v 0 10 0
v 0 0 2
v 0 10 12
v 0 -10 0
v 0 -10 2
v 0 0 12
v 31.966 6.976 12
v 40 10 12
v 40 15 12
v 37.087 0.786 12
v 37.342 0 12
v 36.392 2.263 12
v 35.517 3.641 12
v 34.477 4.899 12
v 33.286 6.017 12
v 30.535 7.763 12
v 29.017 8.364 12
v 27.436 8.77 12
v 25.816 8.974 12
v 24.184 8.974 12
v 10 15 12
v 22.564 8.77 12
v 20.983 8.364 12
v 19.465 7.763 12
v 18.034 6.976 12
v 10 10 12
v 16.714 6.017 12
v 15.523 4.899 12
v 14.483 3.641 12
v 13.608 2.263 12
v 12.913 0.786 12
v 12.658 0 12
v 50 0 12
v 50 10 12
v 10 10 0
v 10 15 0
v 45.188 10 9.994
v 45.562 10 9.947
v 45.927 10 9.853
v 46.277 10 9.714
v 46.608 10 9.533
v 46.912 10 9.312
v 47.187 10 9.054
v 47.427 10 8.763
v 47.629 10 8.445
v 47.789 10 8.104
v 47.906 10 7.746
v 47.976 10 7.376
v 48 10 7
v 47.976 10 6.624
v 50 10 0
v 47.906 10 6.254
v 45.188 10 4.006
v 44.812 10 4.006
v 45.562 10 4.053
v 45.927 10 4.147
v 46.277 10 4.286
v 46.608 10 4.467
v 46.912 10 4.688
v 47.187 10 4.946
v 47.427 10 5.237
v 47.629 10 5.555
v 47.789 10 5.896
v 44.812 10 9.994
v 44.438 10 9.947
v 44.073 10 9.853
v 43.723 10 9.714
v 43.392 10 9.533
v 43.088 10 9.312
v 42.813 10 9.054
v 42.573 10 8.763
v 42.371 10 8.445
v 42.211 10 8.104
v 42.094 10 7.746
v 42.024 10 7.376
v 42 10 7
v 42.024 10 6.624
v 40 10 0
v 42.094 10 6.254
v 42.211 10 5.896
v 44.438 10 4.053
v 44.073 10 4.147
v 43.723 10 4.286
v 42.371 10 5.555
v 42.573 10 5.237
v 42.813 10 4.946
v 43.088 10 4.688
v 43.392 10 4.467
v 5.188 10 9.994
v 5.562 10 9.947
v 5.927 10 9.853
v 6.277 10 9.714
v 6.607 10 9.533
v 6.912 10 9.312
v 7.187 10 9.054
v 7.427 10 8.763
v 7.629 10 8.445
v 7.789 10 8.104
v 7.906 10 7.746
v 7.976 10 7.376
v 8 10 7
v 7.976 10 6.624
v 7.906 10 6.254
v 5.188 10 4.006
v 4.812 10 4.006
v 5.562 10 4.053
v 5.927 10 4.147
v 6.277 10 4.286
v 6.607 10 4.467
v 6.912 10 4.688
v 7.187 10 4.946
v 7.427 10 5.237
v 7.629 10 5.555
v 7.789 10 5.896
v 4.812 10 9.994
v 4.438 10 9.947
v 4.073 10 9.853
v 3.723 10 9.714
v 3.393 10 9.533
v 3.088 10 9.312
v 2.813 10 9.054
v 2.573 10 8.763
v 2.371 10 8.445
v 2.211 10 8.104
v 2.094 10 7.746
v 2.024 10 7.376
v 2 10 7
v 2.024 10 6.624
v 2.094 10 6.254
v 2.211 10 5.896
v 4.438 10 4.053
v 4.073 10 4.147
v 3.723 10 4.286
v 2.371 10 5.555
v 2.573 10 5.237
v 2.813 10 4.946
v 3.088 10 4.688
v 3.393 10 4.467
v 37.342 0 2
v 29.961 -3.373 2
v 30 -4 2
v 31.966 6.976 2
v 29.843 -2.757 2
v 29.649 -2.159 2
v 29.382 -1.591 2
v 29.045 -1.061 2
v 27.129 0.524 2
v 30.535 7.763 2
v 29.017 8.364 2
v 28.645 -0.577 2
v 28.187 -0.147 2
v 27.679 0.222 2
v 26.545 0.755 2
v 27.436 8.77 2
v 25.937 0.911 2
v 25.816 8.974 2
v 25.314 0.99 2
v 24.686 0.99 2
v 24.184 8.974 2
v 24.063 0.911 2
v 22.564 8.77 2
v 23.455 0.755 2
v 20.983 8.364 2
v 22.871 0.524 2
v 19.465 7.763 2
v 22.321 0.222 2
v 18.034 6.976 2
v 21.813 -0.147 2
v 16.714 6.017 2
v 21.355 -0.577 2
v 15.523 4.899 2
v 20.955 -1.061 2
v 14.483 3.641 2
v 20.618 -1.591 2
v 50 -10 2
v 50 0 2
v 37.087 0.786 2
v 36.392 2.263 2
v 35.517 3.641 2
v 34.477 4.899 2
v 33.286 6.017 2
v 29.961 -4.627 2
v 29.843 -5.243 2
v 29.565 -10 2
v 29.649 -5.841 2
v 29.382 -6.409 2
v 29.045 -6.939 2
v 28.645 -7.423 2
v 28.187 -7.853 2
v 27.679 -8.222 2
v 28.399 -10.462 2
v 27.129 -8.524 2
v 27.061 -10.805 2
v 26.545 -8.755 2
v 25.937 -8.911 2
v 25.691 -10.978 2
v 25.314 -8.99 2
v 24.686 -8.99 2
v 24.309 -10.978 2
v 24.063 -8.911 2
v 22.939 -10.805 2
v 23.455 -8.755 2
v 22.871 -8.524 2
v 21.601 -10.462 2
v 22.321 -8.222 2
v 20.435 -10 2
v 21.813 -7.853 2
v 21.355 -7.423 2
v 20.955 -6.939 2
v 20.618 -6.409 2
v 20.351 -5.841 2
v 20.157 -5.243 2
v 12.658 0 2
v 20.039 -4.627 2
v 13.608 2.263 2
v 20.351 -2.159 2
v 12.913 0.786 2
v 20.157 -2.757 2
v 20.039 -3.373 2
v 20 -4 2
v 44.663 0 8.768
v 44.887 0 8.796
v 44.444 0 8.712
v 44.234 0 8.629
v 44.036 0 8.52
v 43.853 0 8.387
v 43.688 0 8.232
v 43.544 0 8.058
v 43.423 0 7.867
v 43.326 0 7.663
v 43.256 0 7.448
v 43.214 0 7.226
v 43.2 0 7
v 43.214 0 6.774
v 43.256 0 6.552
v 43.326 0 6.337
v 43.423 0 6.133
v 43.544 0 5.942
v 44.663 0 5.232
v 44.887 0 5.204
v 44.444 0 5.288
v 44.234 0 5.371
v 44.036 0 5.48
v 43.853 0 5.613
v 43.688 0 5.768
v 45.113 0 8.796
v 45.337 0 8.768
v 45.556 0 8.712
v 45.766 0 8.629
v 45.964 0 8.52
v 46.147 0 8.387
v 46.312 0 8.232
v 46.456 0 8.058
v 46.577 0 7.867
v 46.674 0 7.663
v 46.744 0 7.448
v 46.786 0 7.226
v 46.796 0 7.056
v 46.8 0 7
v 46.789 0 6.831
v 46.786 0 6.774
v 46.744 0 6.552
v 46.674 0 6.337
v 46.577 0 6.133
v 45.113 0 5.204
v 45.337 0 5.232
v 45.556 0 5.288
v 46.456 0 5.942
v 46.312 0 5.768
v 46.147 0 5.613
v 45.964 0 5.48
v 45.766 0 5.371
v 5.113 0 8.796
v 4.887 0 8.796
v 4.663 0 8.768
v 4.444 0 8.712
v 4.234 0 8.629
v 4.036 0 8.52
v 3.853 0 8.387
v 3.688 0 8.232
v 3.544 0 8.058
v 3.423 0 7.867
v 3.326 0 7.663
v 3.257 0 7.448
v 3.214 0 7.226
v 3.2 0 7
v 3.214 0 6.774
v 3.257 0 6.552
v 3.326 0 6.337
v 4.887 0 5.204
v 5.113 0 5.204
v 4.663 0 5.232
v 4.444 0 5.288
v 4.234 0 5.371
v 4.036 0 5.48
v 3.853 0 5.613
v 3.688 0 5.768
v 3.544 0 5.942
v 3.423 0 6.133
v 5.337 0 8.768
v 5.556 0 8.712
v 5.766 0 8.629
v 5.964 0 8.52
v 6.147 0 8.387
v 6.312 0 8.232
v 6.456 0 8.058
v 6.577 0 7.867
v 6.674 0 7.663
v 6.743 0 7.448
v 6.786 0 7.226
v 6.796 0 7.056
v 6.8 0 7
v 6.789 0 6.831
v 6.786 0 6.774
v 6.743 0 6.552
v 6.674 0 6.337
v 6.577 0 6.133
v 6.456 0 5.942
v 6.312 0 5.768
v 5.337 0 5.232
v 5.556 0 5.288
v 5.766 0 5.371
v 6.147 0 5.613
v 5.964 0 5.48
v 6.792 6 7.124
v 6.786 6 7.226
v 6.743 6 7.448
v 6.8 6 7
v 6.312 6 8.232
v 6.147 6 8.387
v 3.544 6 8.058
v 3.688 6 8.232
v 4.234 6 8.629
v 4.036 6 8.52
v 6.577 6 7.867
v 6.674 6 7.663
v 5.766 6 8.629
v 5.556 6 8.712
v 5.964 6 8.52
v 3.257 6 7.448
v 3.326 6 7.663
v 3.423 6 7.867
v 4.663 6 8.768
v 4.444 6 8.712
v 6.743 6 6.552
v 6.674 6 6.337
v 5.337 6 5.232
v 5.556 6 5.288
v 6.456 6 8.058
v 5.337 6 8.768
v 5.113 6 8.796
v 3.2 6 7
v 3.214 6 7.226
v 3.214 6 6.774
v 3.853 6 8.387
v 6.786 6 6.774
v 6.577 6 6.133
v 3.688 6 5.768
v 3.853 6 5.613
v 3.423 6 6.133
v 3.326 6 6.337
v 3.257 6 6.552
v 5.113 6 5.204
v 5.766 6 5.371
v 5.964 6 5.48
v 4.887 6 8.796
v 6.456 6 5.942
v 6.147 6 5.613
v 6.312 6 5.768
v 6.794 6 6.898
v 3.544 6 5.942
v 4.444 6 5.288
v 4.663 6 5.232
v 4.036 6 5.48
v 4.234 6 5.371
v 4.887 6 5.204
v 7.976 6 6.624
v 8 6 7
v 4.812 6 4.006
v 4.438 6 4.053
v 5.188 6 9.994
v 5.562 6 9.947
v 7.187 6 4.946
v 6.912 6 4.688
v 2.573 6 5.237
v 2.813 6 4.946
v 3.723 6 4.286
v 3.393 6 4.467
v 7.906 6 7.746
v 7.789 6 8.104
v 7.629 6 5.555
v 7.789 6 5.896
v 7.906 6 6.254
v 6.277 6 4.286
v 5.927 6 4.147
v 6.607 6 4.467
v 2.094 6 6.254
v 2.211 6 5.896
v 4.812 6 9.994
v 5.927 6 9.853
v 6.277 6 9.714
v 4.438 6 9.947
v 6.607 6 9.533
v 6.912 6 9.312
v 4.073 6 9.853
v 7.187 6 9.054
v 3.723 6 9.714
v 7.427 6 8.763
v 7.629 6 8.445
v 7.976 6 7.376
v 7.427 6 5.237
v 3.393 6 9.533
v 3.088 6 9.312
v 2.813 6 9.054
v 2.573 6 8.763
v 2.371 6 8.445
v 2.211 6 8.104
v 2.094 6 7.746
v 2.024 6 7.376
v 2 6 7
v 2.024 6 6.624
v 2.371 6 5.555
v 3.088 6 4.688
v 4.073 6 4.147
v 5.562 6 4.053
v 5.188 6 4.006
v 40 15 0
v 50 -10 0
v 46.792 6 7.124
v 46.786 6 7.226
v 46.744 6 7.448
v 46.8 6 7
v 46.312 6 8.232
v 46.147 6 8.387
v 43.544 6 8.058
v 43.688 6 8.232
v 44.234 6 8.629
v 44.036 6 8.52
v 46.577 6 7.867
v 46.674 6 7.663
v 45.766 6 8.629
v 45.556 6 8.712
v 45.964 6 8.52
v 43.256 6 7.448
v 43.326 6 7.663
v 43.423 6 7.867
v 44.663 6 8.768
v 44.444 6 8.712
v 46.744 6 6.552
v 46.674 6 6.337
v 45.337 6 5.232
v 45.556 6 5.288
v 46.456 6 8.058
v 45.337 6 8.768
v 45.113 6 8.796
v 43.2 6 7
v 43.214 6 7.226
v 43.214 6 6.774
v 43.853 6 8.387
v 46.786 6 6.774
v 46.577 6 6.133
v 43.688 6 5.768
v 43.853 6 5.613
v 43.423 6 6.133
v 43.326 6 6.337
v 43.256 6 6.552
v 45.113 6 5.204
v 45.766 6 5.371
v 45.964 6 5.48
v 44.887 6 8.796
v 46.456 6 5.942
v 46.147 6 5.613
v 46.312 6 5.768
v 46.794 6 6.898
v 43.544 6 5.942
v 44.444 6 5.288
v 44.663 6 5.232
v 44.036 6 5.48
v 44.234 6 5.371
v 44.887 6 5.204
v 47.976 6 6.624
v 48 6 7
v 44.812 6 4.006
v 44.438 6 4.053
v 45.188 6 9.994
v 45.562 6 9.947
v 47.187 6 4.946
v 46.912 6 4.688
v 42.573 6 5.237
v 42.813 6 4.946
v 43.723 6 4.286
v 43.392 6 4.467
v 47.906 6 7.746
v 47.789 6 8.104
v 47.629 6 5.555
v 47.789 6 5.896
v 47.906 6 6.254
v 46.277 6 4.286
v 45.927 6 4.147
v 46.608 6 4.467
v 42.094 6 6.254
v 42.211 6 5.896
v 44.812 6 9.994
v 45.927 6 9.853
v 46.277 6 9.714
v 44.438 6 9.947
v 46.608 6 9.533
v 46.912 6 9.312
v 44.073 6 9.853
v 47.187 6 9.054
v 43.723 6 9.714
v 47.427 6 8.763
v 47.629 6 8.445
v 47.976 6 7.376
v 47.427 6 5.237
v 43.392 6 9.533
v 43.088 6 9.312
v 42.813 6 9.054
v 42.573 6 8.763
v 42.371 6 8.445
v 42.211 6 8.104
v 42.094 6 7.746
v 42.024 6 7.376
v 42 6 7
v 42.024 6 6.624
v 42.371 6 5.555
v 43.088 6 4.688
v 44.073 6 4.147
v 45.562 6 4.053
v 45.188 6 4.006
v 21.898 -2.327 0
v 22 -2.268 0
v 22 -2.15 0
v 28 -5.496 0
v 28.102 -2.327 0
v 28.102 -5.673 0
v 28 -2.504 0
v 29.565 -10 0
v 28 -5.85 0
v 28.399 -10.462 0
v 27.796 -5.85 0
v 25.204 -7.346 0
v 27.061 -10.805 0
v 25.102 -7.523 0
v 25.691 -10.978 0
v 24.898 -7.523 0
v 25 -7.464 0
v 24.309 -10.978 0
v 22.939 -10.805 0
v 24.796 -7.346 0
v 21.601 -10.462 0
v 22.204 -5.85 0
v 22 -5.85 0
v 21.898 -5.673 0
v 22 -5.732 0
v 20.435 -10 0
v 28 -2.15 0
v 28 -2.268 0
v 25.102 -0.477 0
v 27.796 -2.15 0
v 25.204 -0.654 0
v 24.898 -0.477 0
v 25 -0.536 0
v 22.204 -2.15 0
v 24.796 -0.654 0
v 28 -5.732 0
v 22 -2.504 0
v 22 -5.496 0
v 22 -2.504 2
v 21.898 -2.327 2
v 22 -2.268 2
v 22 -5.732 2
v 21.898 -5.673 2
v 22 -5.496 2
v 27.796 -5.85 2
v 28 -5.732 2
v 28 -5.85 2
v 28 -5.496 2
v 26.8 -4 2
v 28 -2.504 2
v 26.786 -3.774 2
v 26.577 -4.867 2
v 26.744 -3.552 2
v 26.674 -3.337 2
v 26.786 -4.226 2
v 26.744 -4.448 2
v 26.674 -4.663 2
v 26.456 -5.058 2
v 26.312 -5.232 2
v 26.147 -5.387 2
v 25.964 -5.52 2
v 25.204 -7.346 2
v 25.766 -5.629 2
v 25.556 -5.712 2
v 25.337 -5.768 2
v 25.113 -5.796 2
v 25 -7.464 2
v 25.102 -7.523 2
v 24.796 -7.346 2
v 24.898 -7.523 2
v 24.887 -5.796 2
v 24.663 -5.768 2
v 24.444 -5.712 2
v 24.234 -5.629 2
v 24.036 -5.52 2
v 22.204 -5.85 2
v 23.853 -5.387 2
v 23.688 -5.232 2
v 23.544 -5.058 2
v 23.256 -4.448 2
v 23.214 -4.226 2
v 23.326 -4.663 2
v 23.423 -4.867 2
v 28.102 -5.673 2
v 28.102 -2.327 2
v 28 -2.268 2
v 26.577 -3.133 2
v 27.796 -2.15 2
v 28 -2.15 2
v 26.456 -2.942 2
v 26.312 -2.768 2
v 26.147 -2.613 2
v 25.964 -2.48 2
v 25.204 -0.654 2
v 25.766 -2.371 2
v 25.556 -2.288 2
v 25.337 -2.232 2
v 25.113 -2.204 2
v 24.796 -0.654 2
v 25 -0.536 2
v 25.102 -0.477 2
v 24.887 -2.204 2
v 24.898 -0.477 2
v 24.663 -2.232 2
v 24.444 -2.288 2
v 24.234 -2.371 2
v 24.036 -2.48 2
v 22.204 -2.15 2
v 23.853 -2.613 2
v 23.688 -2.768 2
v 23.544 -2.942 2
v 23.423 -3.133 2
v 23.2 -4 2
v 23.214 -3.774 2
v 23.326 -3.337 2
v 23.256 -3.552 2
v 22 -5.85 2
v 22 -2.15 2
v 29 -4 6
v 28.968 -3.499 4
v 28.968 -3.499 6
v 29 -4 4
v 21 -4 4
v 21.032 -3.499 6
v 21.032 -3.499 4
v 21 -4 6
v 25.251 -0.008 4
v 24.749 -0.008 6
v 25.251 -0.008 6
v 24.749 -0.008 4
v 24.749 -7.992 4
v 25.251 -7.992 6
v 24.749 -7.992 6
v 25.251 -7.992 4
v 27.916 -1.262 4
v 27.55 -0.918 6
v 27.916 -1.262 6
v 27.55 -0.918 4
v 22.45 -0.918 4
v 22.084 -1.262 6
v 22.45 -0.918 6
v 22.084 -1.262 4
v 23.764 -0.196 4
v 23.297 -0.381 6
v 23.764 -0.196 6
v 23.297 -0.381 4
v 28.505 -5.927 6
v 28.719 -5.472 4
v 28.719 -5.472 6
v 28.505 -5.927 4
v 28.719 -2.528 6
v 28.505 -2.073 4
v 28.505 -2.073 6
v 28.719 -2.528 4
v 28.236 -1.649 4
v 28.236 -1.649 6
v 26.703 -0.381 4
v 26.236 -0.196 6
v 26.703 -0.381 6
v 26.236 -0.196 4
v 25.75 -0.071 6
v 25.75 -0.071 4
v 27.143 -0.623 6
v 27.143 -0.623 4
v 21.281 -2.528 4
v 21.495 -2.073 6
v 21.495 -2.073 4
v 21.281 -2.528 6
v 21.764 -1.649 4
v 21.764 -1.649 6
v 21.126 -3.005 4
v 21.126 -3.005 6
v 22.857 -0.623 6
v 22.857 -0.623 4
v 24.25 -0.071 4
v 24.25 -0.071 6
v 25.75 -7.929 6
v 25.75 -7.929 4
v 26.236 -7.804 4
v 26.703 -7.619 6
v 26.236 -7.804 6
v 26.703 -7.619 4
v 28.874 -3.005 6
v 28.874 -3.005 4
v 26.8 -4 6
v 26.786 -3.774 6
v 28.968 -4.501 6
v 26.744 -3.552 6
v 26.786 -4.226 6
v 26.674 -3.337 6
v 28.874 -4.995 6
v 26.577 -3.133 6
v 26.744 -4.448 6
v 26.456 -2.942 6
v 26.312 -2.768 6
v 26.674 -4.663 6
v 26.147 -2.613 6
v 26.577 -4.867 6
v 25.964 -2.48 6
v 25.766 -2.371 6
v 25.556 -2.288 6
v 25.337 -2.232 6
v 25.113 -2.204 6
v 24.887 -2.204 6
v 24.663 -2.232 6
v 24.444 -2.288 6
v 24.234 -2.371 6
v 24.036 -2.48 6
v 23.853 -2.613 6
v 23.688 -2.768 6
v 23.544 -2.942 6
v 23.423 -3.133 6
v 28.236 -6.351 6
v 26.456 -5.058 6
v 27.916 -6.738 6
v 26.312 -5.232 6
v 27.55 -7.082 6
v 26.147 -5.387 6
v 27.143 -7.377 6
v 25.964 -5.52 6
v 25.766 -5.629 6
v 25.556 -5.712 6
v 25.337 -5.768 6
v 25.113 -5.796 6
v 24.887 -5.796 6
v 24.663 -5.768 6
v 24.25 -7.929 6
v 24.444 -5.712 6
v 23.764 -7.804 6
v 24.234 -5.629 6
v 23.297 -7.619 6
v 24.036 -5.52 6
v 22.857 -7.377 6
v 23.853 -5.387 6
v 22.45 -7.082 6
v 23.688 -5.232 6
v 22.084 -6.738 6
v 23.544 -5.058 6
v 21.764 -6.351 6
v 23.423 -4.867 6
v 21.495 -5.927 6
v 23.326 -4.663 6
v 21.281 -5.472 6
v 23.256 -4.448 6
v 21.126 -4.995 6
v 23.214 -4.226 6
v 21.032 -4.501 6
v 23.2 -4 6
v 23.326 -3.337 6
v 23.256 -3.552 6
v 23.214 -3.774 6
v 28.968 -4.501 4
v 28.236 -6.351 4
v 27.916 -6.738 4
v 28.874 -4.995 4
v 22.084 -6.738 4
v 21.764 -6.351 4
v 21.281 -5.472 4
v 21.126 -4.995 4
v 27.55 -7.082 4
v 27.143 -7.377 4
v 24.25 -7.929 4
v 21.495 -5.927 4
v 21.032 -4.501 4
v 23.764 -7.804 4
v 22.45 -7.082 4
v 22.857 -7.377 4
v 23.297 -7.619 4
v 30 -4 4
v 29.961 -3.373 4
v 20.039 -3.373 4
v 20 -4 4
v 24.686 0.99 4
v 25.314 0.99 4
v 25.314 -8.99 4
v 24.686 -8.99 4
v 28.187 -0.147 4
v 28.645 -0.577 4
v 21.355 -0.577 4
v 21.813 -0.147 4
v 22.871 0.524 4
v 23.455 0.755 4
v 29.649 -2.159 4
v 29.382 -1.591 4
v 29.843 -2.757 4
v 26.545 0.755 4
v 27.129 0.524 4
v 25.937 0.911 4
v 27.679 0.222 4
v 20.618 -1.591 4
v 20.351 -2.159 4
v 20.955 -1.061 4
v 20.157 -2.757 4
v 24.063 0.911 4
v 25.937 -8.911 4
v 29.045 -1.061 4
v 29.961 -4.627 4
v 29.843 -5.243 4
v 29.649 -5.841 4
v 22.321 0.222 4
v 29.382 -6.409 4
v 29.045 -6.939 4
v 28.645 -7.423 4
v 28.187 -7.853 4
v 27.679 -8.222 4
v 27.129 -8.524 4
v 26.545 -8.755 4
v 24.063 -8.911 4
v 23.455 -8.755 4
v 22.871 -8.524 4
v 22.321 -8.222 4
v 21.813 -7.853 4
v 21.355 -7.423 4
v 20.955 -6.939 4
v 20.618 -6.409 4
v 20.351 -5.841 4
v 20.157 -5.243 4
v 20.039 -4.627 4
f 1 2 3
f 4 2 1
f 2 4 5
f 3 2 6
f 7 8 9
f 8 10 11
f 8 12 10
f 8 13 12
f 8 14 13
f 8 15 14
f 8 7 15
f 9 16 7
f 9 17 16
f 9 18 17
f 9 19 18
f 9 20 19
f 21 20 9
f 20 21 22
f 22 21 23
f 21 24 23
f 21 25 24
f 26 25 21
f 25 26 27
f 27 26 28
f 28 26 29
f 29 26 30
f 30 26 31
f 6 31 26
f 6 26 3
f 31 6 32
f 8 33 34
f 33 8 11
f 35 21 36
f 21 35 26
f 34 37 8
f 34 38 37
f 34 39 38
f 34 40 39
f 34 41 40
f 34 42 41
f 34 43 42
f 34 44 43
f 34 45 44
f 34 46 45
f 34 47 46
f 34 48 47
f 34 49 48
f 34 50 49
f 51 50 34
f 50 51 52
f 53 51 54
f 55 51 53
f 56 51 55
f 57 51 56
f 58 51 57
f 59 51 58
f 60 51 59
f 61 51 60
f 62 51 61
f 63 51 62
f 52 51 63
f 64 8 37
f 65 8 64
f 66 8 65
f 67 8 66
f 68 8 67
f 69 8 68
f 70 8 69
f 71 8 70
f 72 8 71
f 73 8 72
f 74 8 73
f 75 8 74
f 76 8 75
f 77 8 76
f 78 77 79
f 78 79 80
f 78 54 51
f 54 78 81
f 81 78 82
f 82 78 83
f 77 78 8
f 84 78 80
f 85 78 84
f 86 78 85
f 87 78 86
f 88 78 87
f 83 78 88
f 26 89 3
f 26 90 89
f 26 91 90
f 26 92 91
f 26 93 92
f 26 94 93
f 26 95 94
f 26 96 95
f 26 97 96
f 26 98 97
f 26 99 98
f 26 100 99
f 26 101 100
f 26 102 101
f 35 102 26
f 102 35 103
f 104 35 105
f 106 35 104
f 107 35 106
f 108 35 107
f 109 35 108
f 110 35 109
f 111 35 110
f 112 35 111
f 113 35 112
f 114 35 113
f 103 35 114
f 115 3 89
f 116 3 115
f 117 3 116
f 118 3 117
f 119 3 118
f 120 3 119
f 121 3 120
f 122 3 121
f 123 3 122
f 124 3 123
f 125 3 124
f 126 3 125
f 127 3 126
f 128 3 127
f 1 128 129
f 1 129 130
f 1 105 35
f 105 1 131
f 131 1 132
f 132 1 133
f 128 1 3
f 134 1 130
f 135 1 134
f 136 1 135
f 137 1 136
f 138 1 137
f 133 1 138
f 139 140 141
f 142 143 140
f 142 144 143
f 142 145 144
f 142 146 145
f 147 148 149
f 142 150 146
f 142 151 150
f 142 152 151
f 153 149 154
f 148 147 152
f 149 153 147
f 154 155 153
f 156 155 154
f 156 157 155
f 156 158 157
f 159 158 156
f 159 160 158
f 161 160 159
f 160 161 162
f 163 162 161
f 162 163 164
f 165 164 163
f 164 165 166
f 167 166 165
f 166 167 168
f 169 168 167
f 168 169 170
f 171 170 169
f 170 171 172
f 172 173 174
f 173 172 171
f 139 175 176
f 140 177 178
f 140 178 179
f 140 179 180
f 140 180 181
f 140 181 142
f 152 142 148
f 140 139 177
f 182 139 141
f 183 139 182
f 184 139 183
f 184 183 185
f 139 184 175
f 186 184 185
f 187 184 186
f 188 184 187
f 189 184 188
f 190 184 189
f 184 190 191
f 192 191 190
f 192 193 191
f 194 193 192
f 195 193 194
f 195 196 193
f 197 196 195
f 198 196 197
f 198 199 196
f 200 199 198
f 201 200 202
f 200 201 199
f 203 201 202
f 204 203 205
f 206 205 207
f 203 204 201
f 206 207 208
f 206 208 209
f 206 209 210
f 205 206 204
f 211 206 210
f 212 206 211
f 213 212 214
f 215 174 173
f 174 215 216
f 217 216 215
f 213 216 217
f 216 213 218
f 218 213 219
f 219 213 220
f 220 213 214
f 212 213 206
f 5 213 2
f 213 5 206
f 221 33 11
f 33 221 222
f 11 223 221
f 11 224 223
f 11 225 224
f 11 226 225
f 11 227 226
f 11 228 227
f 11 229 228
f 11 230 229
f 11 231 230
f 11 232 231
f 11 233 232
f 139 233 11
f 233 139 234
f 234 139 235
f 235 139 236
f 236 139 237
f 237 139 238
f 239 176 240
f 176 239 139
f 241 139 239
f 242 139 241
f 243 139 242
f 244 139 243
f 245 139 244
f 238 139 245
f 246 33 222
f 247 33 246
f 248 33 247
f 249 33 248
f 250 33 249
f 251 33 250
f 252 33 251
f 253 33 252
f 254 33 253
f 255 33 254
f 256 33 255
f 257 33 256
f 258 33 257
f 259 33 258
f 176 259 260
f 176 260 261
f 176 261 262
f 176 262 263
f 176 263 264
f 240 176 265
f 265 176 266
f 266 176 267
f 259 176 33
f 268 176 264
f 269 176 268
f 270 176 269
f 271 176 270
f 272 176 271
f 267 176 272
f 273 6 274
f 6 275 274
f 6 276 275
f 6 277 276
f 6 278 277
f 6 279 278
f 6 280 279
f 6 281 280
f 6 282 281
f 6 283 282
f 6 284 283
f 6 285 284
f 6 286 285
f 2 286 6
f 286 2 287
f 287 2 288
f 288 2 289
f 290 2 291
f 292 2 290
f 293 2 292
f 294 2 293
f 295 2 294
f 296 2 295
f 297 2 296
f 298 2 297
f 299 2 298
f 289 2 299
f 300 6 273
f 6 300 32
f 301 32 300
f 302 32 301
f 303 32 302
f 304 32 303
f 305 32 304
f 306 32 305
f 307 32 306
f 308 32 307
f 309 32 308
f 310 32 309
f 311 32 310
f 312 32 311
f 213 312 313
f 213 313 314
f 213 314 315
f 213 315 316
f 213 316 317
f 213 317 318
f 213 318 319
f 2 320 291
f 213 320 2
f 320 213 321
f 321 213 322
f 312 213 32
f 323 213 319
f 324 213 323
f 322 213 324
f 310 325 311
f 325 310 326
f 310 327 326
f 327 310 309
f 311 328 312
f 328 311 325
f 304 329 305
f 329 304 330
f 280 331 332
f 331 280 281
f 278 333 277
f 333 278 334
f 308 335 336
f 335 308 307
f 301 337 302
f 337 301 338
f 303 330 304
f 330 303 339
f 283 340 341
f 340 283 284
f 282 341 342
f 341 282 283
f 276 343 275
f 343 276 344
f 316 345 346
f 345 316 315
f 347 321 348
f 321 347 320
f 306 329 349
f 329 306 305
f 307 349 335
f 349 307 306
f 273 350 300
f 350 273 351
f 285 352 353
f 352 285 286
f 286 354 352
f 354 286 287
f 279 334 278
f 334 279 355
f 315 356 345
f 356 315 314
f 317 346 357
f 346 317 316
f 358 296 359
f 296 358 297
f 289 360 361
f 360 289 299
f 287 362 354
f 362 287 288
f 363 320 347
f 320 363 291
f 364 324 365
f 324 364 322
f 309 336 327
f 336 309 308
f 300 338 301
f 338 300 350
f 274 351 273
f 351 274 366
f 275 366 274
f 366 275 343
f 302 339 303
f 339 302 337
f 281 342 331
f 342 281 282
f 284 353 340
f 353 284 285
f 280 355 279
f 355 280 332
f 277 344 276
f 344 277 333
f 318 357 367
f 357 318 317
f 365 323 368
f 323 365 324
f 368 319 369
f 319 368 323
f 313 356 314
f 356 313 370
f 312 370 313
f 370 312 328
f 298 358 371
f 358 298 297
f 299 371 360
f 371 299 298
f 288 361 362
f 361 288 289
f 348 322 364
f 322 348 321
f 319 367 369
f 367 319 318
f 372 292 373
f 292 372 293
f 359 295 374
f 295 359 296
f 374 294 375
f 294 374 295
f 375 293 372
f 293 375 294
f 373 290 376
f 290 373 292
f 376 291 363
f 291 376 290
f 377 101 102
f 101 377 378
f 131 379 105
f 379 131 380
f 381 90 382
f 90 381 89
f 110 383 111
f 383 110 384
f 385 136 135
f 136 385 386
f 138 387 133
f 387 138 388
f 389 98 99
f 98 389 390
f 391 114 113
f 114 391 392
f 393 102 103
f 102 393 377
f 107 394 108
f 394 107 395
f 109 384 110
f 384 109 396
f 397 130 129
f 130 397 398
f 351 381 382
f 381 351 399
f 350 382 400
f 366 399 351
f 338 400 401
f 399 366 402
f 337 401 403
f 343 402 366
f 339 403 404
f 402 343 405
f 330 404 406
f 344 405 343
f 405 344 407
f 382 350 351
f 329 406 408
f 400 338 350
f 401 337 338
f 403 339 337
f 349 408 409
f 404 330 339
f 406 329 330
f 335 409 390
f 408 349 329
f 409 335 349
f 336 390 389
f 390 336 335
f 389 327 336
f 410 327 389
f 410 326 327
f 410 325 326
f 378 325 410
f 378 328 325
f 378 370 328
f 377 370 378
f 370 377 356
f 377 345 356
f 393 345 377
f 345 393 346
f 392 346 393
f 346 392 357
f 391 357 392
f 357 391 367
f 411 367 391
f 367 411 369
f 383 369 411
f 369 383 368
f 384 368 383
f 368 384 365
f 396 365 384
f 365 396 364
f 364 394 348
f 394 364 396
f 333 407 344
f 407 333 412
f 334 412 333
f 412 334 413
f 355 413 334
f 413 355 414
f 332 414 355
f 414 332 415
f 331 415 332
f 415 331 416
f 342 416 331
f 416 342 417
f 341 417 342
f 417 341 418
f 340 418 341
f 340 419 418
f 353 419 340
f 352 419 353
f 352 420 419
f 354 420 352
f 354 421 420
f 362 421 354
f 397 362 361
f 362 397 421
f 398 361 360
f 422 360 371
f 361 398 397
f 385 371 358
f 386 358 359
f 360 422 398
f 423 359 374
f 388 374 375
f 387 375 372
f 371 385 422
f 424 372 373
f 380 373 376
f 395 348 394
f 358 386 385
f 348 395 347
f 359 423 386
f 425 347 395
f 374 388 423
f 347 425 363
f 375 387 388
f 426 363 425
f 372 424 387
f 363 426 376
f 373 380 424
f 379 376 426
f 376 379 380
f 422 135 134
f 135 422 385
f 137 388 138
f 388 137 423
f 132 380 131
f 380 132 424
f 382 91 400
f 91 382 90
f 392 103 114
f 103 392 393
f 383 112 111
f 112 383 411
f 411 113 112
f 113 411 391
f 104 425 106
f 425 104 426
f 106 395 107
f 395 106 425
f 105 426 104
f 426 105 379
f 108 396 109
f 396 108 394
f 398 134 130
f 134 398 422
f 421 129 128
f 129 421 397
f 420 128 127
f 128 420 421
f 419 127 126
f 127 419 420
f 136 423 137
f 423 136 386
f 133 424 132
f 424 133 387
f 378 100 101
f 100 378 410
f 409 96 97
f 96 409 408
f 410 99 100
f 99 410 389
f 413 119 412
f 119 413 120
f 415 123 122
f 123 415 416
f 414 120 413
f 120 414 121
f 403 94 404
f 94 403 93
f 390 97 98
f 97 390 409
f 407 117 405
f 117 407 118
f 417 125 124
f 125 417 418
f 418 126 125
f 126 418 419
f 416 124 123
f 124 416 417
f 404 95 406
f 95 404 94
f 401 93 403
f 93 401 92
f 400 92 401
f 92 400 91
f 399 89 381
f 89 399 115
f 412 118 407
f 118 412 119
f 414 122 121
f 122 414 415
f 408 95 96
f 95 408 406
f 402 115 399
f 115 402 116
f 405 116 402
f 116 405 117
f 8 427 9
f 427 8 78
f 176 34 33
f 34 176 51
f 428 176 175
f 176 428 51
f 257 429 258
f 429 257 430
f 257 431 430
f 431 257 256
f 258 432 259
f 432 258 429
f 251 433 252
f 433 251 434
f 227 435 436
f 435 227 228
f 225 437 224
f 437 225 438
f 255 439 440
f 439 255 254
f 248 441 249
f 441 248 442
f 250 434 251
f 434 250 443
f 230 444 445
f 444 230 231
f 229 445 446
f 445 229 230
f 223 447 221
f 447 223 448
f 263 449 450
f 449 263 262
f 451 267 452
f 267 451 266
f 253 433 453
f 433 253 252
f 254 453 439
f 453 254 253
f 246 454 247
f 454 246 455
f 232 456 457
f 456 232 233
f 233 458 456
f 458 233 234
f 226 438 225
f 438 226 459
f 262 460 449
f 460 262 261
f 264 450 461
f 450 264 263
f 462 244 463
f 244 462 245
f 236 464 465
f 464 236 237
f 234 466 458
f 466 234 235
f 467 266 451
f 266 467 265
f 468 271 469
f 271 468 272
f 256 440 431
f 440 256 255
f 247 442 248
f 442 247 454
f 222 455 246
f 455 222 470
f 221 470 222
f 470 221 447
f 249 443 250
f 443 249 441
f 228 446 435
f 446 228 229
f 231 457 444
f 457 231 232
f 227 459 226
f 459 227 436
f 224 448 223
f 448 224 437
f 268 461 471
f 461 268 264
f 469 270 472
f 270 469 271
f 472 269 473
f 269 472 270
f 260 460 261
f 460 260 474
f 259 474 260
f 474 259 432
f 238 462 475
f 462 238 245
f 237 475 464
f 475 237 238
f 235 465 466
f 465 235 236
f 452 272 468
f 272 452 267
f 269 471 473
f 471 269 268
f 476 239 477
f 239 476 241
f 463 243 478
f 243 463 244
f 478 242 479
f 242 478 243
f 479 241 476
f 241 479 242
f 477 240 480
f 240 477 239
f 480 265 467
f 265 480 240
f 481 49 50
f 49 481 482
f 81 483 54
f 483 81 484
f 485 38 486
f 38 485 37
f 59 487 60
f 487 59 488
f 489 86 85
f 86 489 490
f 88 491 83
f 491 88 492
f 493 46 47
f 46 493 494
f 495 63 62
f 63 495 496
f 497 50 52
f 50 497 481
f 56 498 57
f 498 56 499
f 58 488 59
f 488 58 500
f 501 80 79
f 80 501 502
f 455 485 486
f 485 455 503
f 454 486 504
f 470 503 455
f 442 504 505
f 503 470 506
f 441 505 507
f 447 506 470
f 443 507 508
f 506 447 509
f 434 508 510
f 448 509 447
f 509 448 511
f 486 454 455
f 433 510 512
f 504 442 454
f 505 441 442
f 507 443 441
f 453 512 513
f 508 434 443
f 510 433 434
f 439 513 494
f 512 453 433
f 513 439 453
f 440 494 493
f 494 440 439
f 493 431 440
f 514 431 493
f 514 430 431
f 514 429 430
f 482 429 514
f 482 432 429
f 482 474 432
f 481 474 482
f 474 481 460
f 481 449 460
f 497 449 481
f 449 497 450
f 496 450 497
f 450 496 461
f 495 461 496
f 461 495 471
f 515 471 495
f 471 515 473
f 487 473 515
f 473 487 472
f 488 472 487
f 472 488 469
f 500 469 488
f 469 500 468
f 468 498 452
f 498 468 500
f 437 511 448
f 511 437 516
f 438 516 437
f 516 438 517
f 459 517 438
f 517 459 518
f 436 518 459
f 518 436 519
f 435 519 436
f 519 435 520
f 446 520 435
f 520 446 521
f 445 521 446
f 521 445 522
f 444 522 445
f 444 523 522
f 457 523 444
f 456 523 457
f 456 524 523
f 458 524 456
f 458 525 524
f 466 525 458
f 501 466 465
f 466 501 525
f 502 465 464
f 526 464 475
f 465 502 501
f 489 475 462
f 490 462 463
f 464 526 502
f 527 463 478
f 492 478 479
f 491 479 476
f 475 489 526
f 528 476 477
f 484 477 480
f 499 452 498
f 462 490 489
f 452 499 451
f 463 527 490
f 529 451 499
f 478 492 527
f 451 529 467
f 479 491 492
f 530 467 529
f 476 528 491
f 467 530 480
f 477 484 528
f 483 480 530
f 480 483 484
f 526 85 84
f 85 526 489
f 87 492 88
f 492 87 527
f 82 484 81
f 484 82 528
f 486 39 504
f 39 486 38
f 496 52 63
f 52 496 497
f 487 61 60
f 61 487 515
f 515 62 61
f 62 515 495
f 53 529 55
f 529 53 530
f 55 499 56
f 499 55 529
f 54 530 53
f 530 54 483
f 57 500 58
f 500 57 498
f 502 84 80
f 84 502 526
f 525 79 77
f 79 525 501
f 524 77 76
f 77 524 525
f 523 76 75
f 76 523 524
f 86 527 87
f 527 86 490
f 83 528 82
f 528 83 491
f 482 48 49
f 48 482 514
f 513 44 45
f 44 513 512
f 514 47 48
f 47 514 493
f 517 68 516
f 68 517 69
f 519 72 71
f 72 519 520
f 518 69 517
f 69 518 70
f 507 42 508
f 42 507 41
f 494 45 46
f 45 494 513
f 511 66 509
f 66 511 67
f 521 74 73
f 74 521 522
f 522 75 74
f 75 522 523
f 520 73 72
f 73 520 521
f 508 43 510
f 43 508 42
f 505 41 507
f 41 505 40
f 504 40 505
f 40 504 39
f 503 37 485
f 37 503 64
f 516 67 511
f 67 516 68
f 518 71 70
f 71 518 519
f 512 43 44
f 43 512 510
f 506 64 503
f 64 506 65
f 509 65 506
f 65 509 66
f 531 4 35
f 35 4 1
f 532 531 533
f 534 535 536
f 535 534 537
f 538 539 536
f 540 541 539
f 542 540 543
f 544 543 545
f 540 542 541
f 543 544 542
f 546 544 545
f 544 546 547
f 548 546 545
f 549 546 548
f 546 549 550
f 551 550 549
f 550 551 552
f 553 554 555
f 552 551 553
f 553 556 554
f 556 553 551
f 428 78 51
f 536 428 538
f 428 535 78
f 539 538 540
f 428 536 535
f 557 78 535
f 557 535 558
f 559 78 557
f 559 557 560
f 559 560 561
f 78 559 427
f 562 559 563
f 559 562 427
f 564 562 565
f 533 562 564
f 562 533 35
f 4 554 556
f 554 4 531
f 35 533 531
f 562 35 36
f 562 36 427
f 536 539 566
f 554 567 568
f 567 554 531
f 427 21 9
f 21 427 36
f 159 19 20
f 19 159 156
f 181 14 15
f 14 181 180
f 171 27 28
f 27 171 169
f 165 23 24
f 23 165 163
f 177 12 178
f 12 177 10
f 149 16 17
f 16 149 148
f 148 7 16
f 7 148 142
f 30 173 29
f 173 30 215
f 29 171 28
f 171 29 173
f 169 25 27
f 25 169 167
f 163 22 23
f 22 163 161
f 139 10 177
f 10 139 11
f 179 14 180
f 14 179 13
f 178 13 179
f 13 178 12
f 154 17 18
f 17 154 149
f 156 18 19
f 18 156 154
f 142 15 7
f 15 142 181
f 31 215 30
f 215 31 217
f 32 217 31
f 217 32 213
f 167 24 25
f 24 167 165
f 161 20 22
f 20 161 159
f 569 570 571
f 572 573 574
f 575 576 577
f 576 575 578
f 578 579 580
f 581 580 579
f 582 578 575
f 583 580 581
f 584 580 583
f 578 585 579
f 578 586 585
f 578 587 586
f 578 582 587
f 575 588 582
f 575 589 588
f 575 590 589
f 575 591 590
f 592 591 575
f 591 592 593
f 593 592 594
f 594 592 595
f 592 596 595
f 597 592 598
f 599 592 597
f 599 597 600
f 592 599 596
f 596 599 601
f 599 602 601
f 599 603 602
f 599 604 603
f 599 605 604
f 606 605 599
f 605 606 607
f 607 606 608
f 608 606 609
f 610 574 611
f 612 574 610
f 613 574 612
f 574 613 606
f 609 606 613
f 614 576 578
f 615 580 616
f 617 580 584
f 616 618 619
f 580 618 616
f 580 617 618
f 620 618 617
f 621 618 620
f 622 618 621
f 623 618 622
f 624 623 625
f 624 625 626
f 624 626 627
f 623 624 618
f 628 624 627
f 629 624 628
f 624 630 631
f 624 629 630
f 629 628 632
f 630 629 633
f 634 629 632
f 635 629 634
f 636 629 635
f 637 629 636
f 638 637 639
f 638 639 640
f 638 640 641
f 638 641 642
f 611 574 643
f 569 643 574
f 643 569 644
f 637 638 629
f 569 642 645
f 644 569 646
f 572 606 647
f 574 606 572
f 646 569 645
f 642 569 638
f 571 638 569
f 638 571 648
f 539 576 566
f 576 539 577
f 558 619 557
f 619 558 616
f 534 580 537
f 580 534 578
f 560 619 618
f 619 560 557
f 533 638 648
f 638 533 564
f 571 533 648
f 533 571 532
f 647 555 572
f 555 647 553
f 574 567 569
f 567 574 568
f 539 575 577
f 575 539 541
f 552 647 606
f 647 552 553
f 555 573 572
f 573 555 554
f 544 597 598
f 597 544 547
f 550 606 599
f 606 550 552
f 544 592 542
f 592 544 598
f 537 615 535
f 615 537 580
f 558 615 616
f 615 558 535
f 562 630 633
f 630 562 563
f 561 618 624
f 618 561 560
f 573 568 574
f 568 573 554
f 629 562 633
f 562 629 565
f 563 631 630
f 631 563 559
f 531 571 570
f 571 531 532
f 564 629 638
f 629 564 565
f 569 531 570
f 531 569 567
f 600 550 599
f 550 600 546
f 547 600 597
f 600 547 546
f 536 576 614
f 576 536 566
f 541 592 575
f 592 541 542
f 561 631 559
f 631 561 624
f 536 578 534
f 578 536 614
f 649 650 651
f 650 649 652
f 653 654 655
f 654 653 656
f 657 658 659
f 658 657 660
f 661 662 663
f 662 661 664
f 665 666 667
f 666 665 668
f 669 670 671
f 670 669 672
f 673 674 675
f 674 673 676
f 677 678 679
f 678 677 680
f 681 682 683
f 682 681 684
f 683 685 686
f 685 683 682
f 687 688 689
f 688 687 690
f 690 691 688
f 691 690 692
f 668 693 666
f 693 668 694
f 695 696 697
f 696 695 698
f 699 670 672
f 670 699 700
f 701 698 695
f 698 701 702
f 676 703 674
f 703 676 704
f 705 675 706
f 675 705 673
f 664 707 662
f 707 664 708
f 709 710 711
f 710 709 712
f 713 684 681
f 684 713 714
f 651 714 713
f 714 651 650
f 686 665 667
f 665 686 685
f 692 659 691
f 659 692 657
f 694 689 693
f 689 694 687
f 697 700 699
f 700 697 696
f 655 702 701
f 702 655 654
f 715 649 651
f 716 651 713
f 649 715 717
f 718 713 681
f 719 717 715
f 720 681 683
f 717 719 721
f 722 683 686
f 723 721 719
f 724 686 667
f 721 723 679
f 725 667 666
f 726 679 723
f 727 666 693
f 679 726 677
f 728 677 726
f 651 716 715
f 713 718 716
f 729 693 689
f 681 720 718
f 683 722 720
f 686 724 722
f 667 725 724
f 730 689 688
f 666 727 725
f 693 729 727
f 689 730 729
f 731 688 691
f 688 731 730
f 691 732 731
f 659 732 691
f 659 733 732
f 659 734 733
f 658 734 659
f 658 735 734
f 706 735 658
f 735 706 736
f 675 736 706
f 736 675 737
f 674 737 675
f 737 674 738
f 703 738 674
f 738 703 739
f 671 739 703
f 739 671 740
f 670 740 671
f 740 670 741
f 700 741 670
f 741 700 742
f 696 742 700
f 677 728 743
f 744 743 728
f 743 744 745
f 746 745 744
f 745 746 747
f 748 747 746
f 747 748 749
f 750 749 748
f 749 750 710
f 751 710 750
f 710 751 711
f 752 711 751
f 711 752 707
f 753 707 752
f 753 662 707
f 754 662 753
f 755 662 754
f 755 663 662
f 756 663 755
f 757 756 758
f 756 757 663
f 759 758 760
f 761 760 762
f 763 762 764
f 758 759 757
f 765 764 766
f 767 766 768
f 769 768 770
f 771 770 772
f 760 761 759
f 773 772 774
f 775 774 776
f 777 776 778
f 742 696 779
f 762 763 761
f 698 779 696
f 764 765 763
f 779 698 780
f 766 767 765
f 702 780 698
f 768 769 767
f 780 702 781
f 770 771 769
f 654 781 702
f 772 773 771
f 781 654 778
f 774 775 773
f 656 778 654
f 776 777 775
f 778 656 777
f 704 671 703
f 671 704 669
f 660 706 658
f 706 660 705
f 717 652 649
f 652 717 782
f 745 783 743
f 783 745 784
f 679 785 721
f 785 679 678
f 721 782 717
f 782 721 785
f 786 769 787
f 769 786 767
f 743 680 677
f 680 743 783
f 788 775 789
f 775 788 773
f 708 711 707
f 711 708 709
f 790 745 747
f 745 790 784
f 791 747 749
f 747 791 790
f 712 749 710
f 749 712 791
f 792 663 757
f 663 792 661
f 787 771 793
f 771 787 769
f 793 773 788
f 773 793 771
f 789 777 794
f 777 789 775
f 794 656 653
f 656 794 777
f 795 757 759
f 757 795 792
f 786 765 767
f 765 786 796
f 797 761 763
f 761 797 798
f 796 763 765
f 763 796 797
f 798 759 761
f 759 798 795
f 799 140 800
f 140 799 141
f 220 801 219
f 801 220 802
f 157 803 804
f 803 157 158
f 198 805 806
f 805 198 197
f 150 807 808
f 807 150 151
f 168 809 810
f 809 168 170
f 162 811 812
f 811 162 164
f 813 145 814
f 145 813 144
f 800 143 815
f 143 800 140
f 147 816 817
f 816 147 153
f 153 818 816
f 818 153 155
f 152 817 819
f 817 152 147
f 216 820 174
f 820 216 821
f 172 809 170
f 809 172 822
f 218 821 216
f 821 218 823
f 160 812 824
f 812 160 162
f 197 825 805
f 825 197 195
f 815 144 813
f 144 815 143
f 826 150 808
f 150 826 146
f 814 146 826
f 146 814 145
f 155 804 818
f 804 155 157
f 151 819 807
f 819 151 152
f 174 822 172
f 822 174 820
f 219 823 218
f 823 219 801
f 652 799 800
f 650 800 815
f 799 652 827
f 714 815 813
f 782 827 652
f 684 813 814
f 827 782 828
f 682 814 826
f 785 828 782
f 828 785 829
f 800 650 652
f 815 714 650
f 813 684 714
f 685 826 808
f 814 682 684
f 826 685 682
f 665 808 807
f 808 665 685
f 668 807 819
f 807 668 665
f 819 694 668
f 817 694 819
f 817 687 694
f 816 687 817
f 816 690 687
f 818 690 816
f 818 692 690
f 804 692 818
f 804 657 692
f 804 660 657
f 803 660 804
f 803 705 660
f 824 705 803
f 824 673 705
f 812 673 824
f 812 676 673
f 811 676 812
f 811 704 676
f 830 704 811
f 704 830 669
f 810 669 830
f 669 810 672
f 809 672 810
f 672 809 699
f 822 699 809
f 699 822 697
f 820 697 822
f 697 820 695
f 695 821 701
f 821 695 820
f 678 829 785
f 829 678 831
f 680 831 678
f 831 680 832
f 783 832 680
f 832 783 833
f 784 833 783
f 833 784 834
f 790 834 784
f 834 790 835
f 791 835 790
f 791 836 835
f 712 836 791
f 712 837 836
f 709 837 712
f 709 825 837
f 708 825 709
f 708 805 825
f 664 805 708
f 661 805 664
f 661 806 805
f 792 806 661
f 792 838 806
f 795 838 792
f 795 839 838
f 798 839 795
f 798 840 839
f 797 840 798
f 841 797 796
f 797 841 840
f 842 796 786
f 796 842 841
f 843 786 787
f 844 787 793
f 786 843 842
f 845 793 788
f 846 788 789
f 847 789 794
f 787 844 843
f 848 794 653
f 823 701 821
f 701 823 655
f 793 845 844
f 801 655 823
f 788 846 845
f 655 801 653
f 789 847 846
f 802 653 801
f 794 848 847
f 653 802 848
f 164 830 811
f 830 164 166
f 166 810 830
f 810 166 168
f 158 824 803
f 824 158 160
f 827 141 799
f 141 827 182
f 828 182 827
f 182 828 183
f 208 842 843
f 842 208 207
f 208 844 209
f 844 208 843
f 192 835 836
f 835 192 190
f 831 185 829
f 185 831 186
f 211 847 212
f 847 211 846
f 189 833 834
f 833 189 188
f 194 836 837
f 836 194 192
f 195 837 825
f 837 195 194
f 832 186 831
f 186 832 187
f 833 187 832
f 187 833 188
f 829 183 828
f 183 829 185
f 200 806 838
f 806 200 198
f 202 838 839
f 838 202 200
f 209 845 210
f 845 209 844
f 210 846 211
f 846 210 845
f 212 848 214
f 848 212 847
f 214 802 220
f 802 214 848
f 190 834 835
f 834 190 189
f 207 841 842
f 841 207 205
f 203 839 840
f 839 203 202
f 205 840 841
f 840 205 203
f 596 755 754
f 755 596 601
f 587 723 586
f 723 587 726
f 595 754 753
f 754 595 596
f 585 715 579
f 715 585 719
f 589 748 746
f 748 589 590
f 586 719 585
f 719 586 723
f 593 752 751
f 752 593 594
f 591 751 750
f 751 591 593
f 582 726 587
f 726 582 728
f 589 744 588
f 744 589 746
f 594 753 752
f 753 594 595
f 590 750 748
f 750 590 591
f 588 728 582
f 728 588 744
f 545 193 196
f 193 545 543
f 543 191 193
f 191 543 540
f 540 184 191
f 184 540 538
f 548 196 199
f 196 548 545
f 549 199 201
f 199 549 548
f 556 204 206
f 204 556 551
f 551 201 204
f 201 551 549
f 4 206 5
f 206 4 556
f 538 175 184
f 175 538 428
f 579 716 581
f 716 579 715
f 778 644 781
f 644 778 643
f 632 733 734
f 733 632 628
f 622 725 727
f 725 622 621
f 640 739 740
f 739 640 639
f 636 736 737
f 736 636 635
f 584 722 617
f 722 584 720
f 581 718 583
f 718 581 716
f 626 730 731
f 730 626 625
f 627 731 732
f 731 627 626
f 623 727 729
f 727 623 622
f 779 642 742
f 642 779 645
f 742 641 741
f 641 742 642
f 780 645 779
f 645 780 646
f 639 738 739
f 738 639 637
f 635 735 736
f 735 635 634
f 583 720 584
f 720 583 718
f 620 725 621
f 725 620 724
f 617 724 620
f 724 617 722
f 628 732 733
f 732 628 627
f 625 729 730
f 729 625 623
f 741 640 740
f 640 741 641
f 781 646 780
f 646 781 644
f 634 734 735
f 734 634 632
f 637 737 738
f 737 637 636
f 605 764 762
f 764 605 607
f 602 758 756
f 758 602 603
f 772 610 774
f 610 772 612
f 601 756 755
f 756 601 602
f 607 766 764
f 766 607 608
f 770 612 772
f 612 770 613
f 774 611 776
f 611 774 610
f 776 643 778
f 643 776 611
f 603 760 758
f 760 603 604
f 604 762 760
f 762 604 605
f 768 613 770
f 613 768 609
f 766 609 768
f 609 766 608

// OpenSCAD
$fn=50;

// Enclosure dimensions
diodeWallT=2;
// Eyelet body dimensions
eyeBodyX=50;
eyeBodyY=10;
eyeBodyZ=diodeWallT;
rollerAccessR=13;
bridgeX=30;
bridgeY=15;
bridgeZ=10;

// Nut dimensions
nutX=4;
nutY=3.7;
nutZ=6;
module nut(nutX_arg=nutX,nutY_arg=nutY,nutZ_arg=nutZ)
{
    union()
    {
        cube([nutX_arg,nutY_arg,nutZ_arg],center=true);
        rotate(a=120,v=[1,0,0])  cube([nutX_arg,nutY_arg,nutZ_arg],center=true);
        rotate(a=240,v=[1,0,0])  cube([nutX_arg,nutY_arg,nutZ_arg],center=true);
    }
}

// Feet dimensions
footX=10;
footY=10;
footZ=10;
footScrewR=1.8;
footScrewH=footZ;
footHeadR=3;
footHeadH=4;
screwOffset=5;
module foot()
{
    difference()
    {
        cube([footX,footY,footZ]);
        translate([footX/2,footY/2,footZ-screwOffset])  rotate(a=90,v=[1,0,0])  cylinder(r=footScrewR,h=2*footScrewH,center=true);
        translate([footX/2,footY-footHeadH,footZ-screwOffset])  rotate(a=-90,v=[1,0,0])  cylinder(r=footHeadR,h=2*footHeadH);
    }
}

// Bearing mandrel dimensions
bearingZ=4;
bearingY=-4;
bearingR=4;
bearingStandoffR=5;
bearingStandoffH=2.0;
bearingScrewR=3;
module bearing()
{
    difference()
    {
        union()
        {
            cylinder(r=bearingR,h=bearingZ);
            cylinder(r=bearingStandoffR,h=bearingStandoffH);
        }
        cylinder(r=footScrewR,h=bearingZ);
    }
}

difference()
{
    union()  {
        translate([0,0,0])  cube([eyeBodyX,eyeBodyY,eyeBodyZ]);
        translate([0,0,diodeWallT])  foot();
        translate([eyeBodyX-footX,0,diodeWallT])  foot();
        translate([footX,0,diodeWallT])  cube([bridgeX,bridgeY,bridgeZ]);
    }
    // Cut bearing access
    translate([eyeBodyX/2,bearingY,0])  cylinder(r=rollerAccessR,h=12);
}

difference()
{
    union()
    {
        // Add bearing and support
        translate([footX,0,0])  cube([bridgeX,bridgeY,diodeWallT]);
        translate([eyeBodyX/2,0,0])  cylinder(r=11,h=diodeWallT);
        translate([0,-eyeBodyY,0])  cube([eyeBodyX,eyeBodyY,diodeWallT]);
        translate([eyeBodyX/2,bearingY,diodeWallT])  bearing();
    }
    translate([eyeBodyX/2,bearingY,0])  cylinder(r=footScrewR,h=12);
    translate([eyeBodyX/2,bearingY,0])  rotate(a=90,v=[0,1,0])  nut(nutX_arg=4);
}
